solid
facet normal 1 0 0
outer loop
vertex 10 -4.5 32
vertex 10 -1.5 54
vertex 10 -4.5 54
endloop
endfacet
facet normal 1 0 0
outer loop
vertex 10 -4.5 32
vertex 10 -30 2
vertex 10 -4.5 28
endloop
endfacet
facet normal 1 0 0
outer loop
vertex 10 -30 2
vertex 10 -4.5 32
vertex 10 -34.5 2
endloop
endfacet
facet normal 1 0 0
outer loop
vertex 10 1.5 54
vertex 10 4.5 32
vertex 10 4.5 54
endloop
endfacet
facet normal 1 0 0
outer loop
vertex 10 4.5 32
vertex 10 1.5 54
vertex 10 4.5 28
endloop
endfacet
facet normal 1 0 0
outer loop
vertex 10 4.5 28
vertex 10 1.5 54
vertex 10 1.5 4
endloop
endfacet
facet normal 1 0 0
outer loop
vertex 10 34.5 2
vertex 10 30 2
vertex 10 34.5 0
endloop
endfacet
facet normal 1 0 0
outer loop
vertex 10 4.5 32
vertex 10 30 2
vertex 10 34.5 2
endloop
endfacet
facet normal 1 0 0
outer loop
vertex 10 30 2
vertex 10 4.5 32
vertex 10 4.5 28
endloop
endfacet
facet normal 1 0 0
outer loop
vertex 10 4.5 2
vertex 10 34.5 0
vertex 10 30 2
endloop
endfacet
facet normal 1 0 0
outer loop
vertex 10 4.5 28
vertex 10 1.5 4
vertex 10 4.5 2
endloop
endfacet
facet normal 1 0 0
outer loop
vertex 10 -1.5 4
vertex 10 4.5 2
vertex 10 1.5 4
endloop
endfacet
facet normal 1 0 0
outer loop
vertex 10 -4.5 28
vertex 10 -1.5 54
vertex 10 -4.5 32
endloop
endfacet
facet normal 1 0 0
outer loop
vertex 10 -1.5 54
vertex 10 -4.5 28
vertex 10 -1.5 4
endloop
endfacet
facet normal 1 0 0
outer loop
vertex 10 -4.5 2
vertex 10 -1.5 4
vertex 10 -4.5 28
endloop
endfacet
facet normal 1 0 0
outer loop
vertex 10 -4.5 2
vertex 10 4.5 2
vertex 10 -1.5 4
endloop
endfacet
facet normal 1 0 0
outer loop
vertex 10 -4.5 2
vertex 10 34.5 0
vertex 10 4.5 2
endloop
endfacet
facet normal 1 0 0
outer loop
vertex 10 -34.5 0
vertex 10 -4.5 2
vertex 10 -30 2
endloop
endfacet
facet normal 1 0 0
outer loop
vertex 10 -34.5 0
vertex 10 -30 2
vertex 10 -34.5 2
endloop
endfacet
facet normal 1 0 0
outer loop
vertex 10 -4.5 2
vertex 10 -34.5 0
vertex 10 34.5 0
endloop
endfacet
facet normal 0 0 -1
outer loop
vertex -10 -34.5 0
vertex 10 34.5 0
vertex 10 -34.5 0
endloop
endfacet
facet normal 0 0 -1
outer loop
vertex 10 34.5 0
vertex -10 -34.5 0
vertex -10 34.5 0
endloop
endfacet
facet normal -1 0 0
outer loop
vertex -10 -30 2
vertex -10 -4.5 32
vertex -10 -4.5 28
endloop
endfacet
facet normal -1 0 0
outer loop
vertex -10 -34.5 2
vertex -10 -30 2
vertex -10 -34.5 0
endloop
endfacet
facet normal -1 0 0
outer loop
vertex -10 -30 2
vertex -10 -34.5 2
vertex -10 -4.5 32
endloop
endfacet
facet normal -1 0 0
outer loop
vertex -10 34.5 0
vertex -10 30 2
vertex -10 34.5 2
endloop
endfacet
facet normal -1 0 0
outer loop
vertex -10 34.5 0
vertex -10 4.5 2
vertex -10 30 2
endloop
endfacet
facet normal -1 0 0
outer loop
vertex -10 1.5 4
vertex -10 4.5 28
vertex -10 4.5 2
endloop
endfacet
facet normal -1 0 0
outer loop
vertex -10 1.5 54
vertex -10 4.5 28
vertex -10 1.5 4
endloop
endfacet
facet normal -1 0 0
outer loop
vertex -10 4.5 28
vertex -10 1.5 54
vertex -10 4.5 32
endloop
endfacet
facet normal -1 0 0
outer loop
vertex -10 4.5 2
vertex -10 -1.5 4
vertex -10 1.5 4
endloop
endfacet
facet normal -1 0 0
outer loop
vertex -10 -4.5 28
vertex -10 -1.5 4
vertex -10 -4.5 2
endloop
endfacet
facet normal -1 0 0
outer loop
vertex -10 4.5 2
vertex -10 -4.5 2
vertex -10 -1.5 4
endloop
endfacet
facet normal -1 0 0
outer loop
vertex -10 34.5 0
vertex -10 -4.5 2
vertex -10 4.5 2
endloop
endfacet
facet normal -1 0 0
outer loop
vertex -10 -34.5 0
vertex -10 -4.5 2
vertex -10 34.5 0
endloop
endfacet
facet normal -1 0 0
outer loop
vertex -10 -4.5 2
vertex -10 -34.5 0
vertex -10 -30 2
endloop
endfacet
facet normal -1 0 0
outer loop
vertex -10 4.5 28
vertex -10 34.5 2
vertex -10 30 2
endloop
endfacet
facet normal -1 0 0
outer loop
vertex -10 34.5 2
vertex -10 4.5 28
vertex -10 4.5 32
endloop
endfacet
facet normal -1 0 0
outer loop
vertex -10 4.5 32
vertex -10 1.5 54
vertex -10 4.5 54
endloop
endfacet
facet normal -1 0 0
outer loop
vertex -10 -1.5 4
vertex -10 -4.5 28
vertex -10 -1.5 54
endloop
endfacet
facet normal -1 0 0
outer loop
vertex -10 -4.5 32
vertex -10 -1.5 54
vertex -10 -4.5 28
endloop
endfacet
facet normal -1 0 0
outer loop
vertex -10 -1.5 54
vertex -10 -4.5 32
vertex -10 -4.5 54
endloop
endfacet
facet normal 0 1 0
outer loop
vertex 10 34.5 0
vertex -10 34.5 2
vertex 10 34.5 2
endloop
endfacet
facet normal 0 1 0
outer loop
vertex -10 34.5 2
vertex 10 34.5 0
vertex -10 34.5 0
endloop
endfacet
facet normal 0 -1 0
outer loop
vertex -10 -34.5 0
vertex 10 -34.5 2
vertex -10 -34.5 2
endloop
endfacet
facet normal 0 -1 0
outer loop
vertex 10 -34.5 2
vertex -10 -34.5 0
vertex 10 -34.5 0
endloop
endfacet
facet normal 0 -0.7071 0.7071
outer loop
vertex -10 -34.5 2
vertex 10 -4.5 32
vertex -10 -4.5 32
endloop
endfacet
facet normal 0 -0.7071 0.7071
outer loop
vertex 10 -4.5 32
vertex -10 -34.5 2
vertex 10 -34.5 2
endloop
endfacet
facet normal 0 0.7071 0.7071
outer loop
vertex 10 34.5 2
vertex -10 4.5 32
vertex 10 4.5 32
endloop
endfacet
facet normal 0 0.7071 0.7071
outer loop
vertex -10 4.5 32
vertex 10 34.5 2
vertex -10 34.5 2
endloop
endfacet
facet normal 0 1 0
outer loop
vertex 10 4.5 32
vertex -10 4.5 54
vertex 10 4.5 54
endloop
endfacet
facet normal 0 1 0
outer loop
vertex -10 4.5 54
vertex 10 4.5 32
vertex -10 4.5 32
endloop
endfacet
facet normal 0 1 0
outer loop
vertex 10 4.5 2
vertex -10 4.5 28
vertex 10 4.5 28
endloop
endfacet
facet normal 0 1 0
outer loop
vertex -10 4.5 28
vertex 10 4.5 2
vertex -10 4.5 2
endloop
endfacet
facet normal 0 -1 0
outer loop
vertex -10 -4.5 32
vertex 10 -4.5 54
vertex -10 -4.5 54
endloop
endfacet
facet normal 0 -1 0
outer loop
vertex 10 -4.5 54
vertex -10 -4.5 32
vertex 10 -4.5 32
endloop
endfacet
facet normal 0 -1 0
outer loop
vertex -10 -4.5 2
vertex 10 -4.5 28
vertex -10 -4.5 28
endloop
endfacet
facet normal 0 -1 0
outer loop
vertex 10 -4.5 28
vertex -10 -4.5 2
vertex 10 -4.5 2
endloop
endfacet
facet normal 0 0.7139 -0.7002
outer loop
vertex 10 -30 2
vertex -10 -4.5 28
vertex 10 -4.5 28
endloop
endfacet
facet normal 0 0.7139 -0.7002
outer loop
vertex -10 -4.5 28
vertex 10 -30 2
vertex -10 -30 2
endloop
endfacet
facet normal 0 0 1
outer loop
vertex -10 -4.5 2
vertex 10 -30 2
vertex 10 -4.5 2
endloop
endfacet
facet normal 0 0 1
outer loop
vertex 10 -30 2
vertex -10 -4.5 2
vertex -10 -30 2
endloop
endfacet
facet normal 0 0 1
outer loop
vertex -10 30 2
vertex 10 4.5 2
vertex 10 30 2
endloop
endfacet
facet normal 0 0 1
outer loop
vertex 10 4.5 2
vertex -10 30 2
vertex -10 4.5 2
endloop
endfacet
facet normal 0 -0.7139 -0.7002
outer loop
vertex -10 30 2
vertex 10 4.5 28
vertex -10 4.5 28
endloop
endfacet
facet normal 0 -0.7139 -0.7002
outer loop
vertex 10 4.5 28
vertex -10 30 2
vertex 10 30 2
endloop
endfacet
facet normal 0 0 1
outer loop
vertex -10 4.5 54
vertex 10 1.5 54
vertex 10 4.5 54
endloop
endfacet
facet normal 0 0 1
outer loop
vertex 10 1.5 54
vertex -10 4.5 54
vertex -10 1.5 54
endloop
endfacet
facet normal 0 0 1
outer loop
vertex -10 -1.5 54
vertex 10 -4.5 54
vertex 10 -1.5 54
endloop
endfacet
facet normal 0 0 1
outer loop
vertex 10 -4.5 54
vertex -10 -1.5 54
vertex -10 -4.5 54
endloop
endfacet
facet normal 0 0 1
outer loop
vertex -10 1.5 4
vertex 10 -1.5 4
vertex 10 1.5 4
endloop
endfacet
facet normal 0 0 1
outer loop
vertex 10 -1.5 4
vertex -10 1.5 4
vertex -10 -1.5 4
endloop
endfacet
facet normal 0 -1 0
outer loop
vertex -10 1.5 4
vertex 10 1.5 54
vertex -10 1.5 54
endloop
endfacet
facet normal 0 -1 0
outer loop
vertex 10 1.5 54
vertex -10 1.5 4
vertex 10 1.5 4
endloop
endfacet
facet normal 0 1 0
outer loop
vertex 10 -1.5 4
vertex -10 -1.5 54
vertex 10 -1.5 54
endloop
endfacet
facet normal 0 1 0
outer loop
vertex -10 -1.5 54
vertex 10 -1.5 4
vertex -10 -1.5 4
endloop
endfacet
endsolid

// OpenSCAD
module slot(thickness, walls, base, height, width) {
    total_thickness = thickness + walls * 2;
    total_height = height + base;
    
    difference() {
        translate([-width/2, -total_thickness/2, 0]) cube([width, total_thickness, total_height]);
        translate([-(width + 10)/2, -thickness/2, base]) cube([width + 10, thickness, total_height + 10]);
    }
}

module stand(top_height, top_width, base_height, base_width, base_thick, base_stretch) {
    translate([-base_width/2, -base_height/2, 0]) cube([base_width, base_height, base_thick]);
    translate([0, 0, base_thick]) polyhedron([
        [-base_width/2, -base_height/2, 0],
        [base_width/2, -base_height/2, 0],
        [base_width/2, base_height/2, 0],
        [-base_width/2, base_height/2, 0],
    
        [-top_width/2, -top_height/2, base_stretch],
        [top_width/2, -top_height/2, base_stretch],
        [top_width/2, top_height/2, base_stretch],
        [-top_width/2, top_height/2, base_stretch],
    
    ], [
        [ 0, 4, 5, 1 ],
        [ 1, 5, 6, 2 ],
        [ 2, 6, 7, 3 ],
        [ 3, 7, 4, 0 ],
        
        [ 7, 6, 5, 4 ],
        [ 0, 1, 2, 3 ],
    ]);
}

top_height = 9;
top_width = 20;

base_height = top_height + 60;
base_width = top_width + 0;
base_thick = 2;
base_stretch = 30;

thickness = 3;
walls = 3;
base = 4;
height = 50;
width = 20;

difference() {
    stand(top_height, top_width, base_height, base_width, base_thick, base_stretch);
    hull() slot(thickness, walls, base, height, width);
    translate([0, 0, 2]) stand(top_height, top_width, base_height-9, base_width, 0, base_stretch-4);
}
slot(thickness, walls, base, height, width);
